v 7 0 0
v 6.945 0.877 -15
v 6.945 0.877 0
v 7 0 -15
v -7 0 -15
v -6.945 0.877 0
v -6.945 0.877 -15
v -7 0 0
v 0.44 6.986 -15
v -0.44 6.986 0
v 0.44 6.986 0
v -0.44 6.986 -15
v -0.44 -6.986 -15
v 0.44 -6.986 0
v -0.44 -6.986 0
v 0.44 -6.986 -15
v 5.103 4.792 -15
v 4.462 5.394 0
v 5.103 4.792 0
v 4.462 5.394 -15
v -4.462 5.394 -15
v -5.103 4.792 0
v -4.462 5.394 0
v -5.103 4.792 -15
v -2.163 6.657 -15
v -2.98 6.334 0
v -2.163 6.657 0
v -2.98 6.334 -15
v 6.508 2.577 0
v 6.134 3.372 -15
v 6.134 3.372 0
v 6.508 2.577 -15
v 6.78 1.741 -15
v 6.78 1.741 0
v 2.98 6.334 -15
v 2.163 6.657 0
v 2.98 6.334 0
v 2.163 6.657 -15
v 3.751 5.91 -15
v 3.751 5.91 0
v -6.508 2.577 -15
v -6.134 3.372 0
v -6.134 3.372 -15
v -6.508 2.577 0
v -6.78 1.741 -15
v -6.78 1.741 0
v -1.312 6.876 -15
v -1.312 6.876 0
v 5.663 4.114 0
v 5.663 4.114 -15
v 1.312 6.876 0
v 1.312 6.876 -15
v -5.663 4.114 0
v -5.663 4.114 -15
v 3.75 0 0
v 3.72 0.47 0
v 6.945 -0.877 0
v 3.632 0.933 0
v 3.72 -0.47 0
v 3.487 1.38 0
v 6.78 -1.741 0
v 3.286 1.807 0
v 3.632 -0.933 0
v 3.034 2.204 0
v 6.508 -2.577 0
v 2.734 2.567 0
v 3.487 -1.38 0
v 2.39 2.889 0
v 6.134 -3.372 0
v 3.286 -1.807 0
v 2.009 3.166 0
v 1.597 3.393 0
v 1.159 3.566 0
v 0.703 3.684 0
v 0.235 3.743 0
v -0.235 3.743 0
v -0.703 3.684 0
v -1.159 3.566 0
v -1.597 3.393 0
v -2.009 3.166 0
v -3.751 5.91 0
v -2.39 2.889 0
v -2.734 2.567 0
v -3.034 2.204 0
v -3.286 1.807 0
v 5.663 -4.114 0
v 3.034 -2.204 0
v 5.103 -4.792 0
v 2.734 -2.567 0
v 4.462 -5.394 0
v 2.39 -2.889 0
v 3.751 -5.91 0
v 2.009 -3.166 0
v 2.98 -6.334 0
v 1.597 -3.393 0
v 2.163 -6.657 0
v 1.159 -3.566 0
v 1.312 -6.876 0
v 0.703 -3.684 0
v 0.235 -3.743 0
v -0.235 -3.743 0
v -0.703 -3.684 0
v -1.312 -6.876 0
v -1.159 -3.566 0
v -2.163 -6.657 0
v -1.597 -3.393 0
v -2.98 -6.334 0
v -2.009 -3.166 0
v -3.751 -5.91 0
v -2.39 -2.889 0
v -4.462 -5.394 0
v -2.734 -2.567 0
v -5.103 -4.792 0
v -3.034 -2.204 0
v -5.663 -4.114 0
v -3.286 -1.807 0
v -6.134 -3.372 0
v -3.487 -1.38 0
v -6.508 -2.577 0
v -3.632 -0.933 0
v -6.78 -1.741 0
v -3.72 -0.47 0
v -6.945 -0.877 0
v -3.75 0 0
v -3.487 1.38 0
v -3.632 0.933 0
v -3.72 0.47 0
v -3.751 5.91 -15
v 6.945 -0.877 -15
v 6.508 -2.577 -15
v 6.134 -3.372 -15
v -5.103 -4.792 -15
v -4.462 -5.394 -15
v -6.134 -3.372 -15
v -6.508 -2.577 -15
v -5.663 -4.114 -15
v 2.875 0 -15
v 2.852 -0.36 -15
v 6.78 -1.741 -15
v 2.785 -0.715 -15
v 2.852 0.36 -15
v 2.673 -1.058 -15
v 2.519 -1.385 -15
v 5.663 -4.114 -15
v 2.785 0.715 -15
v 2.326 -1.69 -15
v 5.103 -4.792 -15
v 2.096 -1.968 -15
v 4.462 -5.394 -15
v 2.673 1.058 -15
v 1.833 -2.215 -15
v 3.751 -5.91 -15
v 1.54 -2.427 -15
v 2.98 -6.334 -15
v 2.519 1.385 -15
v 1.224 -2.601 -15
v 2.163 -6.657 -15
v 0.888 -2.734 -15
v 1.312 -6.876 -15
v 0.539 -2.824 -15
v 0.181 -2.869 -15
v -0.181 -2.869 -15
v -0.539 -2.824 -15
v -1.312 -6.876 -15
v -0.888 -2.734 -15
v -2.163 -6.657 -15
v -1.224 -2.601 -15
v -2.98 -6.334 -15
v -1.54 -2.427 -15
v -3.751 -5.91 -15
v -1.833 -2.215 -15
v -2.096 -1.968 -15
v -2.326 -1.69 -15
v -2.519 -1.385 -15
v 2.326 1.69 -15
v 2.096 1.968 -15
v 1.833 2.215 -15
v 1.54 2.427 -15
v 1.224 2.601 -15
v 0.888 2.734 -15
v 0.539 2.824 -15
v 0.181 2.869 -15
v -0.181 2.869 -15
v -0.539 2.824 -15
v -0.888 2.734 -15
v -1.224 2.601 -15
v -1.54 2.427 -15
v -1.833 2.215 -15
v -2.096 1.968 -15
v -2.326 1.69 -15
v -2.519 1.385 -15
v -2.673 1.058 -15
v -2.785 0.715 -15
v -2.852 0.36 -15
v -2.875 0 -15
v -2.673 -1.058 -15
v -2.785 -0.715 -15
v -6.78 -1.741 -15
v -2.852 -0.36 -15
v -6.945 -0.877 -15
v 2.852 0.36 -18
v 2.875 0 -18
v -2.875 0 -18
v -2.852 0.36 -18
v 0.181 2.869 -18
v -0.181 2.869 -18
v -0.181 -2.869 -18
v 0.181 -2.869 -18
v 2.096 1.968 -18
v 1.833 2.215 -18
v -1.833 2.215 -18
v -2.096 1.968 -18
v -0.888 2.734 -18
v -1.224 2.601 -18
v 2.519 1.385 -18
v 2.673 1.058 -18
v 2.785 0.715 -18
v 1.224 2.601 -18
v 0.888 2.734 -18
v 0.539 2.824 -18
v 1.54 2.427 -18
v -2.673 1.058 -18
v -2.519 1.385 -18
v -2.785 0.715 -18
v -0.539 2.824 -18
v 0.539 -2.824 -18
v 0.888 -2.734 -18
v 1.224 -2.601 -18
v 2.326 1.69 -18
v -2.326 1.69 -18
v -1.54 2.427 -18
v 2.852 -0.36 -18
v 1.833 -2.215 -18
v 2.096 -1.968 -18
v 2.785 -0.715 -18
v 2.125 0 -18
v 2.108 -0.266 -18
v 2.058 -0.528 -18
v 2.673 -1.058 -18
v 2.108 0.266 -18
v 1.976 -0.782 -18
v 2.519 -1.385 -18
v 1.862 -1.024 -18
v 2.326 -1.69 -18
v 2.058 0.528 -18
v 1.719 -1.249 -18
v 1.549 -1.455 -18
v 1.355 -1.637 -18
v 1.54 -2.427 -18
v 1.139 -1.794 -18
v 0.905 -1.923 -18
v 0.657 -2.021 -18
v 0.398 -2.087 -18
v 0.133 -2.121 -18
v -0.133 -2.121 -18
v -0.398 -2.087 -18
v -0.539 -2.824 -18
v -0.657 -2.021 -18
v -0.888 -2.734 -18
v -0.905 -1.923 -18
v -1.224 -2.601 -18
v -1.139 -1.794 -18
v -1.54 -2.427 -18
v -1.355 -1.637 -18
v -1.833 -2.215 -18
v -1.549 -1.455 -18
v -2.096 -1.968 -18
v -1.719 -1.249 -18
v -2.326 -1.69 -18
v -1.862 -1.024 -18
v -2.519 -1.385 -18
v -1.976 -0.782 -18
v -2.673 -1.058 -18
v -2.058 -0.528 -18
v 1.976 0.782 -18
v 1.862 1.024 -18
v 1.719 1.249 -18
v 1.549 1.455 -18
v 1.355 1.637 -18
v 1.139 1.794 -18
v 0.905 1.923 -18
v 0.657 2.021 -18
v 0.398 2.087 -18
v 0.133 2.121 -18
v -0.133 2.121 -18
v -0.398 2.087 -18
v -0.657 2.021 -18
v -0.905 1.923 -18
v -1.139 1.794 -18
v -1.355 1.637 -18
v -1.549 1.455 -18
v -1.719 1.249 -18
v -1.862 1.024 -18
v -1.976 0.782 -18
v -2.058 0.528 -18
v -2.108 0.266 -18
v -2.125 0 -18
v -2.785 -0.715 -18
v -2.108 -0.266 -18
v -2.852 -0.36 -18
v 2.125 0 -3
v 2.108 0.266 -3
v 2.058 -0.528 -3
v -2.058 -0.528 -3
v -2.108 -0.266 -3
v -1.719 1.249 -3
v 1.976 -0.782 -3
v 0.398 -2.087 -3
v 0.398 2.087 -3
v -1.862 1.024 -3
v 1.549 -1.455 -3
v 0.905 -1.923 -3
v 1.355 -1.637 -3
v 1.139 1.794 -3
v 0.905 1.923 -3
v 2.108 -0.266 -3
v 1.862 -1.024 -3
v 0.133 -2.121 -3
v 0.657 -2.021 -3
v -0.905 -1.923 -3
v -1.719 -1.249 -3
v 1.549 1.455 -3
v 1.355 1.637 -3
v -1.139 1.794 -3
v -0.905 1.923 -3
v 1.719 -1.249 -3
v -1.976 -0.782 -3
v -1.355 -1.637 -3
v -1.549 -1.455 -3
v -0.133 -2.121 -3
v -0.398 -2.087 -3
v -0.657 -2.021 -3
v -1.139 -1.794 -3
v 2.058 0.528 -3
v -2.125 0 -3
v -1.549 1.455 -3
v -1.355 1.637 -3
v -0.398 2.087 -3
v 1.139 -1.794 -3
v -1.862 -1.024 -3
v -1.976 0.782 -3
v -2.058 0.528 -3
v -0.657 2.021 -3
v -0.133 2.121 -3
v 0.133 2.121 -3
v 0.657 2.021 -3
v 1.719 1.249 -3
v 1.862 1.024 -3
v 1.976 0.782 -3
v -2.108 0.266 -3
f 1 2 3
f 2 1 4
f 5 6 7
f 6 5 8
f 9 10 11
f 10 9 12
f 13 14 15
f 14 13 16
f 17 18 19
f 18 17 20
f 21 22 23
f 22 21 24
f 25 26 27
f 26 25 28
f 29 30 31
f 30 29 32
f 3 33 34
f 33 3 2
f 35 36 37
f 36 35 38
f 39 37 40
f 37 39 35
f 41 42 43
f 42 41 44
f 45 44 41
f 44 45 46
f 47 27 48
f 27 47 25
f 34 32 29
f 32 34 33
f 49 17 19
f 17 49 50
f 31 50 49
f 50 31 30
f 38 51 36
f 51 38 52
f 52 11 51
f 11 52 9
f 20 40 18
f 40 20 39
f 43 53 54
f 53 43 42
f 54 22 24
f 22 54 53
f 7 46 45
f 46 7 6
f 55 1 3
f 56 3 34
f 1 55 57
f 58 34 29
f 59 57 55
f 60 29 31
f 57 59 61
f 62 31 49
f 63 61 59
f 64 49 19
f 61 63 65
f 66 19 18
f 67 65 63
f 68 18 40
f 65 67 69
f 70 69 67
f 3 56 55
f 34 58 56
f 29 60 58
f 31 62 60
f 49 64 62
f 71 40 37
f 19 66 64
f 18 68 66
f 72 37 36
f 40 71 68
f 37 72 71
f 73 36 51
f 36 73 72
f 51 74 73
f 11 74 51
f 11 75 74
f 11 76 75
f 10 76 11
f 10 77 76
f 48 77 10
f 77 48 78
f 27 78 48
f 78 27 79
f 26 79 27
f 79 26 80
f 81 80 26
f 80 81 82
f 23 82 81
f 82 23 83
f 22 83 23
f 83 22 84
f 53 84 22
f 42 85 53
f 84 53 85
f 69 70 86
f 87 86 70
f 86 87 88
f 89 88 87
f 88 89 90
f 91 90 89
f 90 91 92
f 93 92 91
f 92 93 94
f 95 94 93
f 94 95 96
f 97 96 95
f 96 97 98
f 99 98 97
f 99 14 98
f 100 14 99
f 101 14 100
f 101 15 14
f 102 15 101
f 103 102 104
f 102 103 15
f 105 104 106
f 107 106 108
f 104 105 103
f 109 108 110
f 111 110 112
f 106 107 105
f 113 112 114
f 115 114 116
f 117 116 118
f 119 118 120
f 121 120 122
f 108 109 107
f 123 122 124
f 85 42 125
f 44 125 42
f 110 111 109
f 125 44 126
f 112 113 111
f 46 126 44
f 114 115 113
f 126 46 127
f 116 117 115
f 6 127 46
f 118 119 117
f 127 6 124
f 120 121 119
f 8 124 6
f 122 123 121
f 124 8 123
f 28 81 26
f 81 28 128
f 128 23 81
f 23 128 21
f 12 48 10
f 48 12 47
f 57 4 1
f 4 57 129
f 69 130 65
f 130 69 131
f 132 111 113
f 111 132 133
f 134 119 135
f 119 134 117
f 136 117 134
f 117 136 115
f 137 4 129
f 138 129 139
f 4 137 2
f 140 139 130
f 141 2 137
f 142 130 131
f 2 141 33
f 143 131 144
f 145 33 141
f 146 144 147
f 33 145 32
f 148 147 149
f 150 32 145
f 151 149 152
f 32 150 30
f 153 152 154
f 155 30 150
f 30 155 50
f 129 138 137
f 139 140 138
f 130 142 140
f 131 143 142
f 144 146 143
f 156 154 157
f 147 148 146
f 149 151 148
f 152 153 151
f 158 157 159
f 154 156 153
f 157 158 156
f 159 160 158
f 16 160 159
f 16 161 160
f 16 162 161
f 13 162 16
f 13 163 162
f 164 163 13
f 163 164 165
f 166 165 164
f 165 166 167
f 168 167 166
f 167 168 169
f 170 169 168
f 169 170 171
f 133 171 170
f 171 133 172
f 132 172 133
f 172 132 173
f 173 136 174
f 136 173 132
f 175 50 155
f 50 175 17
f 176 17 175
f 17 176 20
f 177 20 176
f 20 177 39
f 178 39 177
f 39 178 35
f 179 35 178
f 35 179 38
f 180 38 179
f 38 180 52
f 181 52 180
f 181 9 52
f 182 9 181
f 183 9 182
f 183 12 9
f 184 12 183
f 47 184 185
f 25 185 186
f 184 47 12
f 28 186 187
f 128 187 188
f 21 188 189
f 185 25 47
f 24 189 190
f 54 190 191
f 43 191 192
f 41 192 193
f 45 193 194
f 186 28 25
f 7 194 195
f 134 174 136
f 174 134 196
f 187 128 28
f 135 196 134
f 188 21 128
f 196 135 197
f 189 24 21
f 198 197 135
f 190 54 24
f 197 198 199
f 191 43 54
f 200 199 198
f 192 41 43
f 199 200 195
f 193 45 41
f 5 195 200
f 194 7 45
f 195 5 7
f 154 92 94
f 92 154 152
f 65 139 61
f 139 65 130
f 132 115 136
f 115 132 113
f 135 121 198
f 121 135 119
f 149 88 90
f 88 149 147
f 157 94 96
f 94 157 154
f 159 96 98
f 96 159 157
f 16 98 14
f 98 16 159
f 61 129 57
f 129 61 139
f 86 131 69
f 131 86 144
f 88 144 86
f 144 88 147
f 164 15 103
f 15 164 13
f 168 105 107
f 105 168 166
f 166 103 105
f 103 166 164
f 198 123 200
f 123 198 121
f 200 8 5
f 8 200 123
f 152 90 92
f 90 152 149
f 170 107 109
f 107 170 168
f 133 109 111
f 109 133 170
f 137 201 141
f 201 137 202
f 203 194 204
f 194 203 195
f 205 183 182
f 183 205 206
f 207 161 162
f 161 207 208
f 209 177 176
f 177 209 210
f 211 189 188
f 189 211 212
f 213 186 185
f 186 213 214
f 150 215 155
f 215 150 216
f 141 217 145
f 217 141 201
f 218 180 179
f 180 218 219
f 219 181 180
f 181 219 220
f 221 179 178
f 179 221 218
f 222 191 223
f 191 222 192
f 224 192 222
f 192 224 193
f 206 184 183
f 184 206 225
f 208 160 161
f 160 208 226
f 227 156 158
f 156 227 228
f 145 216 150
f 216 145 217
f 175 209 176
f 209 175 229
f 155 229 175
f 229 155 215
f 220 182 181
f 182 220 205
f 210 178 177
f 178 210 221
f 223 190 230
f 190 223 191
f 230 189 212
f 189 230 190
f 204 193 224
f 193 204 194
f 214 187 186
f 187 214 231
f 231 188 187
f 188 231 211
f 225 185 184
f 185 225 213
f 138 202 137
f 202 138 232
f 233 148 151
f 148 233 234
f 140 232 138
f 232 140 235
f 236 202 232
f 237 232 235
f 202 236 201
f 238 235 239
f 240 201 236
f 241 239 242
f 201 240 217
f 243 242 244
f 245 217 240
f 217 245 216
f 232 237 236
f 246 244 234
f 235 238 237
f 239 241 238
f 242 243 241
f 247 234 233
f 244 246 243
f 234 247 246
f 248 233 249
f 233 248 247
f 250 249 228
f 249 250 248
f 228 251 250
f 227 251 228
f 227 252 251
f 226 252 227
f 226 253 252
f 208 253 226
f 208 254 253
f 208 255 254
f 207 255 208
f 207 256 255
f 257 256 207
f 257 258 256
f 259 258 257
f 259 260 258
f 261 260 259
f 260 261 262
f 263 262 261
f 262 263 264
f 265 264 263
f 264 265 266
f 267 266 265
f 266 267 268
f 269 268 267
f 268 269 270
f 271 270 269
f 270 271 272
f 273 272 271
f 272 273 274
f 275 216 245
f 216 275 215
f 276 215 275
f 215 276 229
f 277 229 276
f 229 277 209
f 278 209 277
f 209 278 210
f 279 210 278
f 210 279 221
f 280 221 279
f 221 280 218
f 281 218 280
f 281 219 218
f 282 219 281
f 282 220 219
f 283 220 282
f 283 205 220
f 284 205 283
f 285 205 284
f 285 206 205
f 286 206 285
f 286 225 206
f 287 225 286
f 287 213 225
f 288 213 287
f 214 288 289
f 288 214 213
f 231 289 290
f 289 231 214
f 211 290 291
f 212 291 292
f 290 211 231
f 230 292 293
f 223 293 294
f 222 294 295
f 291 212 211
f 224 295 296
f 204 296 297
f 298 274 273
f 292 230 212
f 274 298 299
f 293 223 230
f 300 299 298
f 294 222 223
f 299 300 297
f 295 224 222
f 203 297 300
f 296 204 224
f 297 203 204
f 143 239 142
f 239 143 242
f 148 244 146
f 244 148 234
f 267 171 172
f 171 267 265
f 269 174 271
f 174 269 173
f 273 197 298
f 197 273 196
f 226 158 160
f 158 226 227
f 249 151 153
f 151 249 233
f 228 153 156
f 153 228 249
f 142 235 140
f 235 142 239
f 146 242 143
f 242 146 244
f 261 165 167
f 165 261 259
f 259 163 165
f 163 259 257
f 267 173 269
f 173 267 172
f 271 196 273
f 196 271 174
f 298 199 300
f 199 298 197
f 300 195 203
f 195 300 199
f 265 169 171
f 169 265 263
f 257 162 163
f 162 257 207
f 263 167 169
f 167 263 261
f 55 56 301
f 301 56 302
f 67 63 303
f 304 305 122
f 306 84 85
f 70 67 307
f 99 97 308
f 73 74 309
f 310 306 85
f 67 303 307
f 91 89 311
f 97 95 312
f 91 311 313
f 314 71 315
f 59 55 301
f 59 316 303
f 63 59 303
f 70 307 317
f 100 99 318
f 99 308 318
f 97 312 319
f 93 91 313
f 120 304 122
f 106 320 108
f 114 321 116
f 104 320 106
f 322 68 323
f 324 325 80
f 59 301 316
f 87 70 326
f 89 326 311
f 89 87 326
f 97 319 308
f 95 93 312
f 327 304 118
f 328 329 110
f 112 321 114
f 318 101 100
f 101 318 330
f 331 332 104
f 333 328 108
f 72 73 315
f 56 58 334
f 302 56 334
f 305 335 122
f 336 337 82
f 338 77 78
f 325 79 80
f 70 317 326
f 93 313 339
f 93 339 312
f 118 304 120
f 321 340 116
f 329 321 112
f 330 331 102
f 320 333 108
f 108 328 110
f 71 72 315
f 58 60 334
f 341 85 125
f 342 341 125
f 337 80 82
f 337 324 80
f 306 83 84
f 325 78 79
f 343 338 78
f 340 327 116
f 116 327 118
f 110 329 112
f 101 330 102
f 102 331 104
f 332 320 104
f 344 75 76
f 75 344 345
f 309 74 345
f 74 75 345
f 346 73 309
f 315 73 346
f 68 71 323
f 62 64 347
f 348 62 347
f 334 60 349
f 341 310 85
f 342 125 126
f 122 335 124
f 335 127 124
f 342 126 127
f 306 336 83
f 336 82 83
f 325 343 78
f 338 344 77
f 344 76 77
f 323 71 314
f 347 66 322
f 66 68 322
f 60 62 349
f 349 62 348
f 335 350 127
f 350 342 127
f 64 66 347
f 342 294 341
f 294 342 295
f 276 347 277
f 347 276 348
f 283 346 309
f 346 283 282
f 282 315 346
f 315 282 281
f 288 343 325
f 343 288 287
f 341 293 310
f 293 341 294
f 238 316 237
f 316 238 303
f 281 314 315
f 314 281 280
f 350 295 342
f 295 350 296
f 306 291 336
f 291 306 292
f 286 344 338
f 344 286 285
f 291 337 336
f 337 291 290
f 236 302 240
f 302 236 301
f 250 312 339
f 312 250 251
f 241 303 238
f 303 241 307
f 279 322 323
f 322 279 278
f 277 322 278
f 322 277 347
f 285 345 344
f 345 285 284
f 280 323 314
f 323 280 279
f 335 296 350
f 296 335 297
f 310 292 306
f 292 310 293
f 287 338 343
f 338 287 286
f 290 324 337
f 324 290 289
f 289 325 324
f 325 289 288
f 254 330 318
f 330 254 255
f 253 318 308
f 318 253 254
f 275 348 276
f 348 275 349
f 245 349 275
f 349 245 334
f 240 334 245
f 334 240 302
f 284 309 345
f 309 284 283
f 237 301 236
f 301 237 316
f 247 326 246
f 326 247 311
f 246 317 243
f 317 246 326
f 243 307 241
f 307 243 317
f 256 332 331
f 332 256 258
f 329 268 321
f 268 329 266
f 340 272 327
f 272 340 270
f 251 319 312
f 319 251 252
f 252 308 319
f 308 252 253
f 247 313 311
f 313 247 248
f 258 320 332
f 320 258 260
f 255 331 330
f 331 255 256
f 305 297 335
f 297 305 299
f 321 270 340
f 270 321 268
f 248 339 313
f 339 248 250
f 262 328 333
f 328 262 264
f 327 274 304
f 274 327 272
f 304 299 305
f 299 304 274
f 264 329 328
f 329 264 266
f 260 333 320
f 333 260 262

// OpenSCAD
$fn = 50;

difference() {
	union() {
		translate(v = [0, 0, -15.0]) {
			cylinder(h = 15, r = 7.0);
		}
		#translate(v = [0, 0, -18.0]) {
			cylinder(h = 18, r = 2.875);
		}
	}
	union() {
		translate(v = [0, 0, 0]) {
			rotate(a = [0, 0, 0]) {
				difference() {
					union() {
						translate(v = [0, 0, -18.0]) {
							cylinder(h = 18, r = 2.0);
						}
						translate(v = [0, 0, -3]) {
							cylinder(h = 3, r1 = 2.125, r2 = 3.75);
						}
						translate(v = [0, 0, -18.0]) {
							cylinder(h = 18, r = 2.125);
						}
						translate(v = [0, 0, -18.0]) {
							cylinder(h = 18, r = 2.0);
						}
					}
					union();
				}
			}
		}
	}
}
